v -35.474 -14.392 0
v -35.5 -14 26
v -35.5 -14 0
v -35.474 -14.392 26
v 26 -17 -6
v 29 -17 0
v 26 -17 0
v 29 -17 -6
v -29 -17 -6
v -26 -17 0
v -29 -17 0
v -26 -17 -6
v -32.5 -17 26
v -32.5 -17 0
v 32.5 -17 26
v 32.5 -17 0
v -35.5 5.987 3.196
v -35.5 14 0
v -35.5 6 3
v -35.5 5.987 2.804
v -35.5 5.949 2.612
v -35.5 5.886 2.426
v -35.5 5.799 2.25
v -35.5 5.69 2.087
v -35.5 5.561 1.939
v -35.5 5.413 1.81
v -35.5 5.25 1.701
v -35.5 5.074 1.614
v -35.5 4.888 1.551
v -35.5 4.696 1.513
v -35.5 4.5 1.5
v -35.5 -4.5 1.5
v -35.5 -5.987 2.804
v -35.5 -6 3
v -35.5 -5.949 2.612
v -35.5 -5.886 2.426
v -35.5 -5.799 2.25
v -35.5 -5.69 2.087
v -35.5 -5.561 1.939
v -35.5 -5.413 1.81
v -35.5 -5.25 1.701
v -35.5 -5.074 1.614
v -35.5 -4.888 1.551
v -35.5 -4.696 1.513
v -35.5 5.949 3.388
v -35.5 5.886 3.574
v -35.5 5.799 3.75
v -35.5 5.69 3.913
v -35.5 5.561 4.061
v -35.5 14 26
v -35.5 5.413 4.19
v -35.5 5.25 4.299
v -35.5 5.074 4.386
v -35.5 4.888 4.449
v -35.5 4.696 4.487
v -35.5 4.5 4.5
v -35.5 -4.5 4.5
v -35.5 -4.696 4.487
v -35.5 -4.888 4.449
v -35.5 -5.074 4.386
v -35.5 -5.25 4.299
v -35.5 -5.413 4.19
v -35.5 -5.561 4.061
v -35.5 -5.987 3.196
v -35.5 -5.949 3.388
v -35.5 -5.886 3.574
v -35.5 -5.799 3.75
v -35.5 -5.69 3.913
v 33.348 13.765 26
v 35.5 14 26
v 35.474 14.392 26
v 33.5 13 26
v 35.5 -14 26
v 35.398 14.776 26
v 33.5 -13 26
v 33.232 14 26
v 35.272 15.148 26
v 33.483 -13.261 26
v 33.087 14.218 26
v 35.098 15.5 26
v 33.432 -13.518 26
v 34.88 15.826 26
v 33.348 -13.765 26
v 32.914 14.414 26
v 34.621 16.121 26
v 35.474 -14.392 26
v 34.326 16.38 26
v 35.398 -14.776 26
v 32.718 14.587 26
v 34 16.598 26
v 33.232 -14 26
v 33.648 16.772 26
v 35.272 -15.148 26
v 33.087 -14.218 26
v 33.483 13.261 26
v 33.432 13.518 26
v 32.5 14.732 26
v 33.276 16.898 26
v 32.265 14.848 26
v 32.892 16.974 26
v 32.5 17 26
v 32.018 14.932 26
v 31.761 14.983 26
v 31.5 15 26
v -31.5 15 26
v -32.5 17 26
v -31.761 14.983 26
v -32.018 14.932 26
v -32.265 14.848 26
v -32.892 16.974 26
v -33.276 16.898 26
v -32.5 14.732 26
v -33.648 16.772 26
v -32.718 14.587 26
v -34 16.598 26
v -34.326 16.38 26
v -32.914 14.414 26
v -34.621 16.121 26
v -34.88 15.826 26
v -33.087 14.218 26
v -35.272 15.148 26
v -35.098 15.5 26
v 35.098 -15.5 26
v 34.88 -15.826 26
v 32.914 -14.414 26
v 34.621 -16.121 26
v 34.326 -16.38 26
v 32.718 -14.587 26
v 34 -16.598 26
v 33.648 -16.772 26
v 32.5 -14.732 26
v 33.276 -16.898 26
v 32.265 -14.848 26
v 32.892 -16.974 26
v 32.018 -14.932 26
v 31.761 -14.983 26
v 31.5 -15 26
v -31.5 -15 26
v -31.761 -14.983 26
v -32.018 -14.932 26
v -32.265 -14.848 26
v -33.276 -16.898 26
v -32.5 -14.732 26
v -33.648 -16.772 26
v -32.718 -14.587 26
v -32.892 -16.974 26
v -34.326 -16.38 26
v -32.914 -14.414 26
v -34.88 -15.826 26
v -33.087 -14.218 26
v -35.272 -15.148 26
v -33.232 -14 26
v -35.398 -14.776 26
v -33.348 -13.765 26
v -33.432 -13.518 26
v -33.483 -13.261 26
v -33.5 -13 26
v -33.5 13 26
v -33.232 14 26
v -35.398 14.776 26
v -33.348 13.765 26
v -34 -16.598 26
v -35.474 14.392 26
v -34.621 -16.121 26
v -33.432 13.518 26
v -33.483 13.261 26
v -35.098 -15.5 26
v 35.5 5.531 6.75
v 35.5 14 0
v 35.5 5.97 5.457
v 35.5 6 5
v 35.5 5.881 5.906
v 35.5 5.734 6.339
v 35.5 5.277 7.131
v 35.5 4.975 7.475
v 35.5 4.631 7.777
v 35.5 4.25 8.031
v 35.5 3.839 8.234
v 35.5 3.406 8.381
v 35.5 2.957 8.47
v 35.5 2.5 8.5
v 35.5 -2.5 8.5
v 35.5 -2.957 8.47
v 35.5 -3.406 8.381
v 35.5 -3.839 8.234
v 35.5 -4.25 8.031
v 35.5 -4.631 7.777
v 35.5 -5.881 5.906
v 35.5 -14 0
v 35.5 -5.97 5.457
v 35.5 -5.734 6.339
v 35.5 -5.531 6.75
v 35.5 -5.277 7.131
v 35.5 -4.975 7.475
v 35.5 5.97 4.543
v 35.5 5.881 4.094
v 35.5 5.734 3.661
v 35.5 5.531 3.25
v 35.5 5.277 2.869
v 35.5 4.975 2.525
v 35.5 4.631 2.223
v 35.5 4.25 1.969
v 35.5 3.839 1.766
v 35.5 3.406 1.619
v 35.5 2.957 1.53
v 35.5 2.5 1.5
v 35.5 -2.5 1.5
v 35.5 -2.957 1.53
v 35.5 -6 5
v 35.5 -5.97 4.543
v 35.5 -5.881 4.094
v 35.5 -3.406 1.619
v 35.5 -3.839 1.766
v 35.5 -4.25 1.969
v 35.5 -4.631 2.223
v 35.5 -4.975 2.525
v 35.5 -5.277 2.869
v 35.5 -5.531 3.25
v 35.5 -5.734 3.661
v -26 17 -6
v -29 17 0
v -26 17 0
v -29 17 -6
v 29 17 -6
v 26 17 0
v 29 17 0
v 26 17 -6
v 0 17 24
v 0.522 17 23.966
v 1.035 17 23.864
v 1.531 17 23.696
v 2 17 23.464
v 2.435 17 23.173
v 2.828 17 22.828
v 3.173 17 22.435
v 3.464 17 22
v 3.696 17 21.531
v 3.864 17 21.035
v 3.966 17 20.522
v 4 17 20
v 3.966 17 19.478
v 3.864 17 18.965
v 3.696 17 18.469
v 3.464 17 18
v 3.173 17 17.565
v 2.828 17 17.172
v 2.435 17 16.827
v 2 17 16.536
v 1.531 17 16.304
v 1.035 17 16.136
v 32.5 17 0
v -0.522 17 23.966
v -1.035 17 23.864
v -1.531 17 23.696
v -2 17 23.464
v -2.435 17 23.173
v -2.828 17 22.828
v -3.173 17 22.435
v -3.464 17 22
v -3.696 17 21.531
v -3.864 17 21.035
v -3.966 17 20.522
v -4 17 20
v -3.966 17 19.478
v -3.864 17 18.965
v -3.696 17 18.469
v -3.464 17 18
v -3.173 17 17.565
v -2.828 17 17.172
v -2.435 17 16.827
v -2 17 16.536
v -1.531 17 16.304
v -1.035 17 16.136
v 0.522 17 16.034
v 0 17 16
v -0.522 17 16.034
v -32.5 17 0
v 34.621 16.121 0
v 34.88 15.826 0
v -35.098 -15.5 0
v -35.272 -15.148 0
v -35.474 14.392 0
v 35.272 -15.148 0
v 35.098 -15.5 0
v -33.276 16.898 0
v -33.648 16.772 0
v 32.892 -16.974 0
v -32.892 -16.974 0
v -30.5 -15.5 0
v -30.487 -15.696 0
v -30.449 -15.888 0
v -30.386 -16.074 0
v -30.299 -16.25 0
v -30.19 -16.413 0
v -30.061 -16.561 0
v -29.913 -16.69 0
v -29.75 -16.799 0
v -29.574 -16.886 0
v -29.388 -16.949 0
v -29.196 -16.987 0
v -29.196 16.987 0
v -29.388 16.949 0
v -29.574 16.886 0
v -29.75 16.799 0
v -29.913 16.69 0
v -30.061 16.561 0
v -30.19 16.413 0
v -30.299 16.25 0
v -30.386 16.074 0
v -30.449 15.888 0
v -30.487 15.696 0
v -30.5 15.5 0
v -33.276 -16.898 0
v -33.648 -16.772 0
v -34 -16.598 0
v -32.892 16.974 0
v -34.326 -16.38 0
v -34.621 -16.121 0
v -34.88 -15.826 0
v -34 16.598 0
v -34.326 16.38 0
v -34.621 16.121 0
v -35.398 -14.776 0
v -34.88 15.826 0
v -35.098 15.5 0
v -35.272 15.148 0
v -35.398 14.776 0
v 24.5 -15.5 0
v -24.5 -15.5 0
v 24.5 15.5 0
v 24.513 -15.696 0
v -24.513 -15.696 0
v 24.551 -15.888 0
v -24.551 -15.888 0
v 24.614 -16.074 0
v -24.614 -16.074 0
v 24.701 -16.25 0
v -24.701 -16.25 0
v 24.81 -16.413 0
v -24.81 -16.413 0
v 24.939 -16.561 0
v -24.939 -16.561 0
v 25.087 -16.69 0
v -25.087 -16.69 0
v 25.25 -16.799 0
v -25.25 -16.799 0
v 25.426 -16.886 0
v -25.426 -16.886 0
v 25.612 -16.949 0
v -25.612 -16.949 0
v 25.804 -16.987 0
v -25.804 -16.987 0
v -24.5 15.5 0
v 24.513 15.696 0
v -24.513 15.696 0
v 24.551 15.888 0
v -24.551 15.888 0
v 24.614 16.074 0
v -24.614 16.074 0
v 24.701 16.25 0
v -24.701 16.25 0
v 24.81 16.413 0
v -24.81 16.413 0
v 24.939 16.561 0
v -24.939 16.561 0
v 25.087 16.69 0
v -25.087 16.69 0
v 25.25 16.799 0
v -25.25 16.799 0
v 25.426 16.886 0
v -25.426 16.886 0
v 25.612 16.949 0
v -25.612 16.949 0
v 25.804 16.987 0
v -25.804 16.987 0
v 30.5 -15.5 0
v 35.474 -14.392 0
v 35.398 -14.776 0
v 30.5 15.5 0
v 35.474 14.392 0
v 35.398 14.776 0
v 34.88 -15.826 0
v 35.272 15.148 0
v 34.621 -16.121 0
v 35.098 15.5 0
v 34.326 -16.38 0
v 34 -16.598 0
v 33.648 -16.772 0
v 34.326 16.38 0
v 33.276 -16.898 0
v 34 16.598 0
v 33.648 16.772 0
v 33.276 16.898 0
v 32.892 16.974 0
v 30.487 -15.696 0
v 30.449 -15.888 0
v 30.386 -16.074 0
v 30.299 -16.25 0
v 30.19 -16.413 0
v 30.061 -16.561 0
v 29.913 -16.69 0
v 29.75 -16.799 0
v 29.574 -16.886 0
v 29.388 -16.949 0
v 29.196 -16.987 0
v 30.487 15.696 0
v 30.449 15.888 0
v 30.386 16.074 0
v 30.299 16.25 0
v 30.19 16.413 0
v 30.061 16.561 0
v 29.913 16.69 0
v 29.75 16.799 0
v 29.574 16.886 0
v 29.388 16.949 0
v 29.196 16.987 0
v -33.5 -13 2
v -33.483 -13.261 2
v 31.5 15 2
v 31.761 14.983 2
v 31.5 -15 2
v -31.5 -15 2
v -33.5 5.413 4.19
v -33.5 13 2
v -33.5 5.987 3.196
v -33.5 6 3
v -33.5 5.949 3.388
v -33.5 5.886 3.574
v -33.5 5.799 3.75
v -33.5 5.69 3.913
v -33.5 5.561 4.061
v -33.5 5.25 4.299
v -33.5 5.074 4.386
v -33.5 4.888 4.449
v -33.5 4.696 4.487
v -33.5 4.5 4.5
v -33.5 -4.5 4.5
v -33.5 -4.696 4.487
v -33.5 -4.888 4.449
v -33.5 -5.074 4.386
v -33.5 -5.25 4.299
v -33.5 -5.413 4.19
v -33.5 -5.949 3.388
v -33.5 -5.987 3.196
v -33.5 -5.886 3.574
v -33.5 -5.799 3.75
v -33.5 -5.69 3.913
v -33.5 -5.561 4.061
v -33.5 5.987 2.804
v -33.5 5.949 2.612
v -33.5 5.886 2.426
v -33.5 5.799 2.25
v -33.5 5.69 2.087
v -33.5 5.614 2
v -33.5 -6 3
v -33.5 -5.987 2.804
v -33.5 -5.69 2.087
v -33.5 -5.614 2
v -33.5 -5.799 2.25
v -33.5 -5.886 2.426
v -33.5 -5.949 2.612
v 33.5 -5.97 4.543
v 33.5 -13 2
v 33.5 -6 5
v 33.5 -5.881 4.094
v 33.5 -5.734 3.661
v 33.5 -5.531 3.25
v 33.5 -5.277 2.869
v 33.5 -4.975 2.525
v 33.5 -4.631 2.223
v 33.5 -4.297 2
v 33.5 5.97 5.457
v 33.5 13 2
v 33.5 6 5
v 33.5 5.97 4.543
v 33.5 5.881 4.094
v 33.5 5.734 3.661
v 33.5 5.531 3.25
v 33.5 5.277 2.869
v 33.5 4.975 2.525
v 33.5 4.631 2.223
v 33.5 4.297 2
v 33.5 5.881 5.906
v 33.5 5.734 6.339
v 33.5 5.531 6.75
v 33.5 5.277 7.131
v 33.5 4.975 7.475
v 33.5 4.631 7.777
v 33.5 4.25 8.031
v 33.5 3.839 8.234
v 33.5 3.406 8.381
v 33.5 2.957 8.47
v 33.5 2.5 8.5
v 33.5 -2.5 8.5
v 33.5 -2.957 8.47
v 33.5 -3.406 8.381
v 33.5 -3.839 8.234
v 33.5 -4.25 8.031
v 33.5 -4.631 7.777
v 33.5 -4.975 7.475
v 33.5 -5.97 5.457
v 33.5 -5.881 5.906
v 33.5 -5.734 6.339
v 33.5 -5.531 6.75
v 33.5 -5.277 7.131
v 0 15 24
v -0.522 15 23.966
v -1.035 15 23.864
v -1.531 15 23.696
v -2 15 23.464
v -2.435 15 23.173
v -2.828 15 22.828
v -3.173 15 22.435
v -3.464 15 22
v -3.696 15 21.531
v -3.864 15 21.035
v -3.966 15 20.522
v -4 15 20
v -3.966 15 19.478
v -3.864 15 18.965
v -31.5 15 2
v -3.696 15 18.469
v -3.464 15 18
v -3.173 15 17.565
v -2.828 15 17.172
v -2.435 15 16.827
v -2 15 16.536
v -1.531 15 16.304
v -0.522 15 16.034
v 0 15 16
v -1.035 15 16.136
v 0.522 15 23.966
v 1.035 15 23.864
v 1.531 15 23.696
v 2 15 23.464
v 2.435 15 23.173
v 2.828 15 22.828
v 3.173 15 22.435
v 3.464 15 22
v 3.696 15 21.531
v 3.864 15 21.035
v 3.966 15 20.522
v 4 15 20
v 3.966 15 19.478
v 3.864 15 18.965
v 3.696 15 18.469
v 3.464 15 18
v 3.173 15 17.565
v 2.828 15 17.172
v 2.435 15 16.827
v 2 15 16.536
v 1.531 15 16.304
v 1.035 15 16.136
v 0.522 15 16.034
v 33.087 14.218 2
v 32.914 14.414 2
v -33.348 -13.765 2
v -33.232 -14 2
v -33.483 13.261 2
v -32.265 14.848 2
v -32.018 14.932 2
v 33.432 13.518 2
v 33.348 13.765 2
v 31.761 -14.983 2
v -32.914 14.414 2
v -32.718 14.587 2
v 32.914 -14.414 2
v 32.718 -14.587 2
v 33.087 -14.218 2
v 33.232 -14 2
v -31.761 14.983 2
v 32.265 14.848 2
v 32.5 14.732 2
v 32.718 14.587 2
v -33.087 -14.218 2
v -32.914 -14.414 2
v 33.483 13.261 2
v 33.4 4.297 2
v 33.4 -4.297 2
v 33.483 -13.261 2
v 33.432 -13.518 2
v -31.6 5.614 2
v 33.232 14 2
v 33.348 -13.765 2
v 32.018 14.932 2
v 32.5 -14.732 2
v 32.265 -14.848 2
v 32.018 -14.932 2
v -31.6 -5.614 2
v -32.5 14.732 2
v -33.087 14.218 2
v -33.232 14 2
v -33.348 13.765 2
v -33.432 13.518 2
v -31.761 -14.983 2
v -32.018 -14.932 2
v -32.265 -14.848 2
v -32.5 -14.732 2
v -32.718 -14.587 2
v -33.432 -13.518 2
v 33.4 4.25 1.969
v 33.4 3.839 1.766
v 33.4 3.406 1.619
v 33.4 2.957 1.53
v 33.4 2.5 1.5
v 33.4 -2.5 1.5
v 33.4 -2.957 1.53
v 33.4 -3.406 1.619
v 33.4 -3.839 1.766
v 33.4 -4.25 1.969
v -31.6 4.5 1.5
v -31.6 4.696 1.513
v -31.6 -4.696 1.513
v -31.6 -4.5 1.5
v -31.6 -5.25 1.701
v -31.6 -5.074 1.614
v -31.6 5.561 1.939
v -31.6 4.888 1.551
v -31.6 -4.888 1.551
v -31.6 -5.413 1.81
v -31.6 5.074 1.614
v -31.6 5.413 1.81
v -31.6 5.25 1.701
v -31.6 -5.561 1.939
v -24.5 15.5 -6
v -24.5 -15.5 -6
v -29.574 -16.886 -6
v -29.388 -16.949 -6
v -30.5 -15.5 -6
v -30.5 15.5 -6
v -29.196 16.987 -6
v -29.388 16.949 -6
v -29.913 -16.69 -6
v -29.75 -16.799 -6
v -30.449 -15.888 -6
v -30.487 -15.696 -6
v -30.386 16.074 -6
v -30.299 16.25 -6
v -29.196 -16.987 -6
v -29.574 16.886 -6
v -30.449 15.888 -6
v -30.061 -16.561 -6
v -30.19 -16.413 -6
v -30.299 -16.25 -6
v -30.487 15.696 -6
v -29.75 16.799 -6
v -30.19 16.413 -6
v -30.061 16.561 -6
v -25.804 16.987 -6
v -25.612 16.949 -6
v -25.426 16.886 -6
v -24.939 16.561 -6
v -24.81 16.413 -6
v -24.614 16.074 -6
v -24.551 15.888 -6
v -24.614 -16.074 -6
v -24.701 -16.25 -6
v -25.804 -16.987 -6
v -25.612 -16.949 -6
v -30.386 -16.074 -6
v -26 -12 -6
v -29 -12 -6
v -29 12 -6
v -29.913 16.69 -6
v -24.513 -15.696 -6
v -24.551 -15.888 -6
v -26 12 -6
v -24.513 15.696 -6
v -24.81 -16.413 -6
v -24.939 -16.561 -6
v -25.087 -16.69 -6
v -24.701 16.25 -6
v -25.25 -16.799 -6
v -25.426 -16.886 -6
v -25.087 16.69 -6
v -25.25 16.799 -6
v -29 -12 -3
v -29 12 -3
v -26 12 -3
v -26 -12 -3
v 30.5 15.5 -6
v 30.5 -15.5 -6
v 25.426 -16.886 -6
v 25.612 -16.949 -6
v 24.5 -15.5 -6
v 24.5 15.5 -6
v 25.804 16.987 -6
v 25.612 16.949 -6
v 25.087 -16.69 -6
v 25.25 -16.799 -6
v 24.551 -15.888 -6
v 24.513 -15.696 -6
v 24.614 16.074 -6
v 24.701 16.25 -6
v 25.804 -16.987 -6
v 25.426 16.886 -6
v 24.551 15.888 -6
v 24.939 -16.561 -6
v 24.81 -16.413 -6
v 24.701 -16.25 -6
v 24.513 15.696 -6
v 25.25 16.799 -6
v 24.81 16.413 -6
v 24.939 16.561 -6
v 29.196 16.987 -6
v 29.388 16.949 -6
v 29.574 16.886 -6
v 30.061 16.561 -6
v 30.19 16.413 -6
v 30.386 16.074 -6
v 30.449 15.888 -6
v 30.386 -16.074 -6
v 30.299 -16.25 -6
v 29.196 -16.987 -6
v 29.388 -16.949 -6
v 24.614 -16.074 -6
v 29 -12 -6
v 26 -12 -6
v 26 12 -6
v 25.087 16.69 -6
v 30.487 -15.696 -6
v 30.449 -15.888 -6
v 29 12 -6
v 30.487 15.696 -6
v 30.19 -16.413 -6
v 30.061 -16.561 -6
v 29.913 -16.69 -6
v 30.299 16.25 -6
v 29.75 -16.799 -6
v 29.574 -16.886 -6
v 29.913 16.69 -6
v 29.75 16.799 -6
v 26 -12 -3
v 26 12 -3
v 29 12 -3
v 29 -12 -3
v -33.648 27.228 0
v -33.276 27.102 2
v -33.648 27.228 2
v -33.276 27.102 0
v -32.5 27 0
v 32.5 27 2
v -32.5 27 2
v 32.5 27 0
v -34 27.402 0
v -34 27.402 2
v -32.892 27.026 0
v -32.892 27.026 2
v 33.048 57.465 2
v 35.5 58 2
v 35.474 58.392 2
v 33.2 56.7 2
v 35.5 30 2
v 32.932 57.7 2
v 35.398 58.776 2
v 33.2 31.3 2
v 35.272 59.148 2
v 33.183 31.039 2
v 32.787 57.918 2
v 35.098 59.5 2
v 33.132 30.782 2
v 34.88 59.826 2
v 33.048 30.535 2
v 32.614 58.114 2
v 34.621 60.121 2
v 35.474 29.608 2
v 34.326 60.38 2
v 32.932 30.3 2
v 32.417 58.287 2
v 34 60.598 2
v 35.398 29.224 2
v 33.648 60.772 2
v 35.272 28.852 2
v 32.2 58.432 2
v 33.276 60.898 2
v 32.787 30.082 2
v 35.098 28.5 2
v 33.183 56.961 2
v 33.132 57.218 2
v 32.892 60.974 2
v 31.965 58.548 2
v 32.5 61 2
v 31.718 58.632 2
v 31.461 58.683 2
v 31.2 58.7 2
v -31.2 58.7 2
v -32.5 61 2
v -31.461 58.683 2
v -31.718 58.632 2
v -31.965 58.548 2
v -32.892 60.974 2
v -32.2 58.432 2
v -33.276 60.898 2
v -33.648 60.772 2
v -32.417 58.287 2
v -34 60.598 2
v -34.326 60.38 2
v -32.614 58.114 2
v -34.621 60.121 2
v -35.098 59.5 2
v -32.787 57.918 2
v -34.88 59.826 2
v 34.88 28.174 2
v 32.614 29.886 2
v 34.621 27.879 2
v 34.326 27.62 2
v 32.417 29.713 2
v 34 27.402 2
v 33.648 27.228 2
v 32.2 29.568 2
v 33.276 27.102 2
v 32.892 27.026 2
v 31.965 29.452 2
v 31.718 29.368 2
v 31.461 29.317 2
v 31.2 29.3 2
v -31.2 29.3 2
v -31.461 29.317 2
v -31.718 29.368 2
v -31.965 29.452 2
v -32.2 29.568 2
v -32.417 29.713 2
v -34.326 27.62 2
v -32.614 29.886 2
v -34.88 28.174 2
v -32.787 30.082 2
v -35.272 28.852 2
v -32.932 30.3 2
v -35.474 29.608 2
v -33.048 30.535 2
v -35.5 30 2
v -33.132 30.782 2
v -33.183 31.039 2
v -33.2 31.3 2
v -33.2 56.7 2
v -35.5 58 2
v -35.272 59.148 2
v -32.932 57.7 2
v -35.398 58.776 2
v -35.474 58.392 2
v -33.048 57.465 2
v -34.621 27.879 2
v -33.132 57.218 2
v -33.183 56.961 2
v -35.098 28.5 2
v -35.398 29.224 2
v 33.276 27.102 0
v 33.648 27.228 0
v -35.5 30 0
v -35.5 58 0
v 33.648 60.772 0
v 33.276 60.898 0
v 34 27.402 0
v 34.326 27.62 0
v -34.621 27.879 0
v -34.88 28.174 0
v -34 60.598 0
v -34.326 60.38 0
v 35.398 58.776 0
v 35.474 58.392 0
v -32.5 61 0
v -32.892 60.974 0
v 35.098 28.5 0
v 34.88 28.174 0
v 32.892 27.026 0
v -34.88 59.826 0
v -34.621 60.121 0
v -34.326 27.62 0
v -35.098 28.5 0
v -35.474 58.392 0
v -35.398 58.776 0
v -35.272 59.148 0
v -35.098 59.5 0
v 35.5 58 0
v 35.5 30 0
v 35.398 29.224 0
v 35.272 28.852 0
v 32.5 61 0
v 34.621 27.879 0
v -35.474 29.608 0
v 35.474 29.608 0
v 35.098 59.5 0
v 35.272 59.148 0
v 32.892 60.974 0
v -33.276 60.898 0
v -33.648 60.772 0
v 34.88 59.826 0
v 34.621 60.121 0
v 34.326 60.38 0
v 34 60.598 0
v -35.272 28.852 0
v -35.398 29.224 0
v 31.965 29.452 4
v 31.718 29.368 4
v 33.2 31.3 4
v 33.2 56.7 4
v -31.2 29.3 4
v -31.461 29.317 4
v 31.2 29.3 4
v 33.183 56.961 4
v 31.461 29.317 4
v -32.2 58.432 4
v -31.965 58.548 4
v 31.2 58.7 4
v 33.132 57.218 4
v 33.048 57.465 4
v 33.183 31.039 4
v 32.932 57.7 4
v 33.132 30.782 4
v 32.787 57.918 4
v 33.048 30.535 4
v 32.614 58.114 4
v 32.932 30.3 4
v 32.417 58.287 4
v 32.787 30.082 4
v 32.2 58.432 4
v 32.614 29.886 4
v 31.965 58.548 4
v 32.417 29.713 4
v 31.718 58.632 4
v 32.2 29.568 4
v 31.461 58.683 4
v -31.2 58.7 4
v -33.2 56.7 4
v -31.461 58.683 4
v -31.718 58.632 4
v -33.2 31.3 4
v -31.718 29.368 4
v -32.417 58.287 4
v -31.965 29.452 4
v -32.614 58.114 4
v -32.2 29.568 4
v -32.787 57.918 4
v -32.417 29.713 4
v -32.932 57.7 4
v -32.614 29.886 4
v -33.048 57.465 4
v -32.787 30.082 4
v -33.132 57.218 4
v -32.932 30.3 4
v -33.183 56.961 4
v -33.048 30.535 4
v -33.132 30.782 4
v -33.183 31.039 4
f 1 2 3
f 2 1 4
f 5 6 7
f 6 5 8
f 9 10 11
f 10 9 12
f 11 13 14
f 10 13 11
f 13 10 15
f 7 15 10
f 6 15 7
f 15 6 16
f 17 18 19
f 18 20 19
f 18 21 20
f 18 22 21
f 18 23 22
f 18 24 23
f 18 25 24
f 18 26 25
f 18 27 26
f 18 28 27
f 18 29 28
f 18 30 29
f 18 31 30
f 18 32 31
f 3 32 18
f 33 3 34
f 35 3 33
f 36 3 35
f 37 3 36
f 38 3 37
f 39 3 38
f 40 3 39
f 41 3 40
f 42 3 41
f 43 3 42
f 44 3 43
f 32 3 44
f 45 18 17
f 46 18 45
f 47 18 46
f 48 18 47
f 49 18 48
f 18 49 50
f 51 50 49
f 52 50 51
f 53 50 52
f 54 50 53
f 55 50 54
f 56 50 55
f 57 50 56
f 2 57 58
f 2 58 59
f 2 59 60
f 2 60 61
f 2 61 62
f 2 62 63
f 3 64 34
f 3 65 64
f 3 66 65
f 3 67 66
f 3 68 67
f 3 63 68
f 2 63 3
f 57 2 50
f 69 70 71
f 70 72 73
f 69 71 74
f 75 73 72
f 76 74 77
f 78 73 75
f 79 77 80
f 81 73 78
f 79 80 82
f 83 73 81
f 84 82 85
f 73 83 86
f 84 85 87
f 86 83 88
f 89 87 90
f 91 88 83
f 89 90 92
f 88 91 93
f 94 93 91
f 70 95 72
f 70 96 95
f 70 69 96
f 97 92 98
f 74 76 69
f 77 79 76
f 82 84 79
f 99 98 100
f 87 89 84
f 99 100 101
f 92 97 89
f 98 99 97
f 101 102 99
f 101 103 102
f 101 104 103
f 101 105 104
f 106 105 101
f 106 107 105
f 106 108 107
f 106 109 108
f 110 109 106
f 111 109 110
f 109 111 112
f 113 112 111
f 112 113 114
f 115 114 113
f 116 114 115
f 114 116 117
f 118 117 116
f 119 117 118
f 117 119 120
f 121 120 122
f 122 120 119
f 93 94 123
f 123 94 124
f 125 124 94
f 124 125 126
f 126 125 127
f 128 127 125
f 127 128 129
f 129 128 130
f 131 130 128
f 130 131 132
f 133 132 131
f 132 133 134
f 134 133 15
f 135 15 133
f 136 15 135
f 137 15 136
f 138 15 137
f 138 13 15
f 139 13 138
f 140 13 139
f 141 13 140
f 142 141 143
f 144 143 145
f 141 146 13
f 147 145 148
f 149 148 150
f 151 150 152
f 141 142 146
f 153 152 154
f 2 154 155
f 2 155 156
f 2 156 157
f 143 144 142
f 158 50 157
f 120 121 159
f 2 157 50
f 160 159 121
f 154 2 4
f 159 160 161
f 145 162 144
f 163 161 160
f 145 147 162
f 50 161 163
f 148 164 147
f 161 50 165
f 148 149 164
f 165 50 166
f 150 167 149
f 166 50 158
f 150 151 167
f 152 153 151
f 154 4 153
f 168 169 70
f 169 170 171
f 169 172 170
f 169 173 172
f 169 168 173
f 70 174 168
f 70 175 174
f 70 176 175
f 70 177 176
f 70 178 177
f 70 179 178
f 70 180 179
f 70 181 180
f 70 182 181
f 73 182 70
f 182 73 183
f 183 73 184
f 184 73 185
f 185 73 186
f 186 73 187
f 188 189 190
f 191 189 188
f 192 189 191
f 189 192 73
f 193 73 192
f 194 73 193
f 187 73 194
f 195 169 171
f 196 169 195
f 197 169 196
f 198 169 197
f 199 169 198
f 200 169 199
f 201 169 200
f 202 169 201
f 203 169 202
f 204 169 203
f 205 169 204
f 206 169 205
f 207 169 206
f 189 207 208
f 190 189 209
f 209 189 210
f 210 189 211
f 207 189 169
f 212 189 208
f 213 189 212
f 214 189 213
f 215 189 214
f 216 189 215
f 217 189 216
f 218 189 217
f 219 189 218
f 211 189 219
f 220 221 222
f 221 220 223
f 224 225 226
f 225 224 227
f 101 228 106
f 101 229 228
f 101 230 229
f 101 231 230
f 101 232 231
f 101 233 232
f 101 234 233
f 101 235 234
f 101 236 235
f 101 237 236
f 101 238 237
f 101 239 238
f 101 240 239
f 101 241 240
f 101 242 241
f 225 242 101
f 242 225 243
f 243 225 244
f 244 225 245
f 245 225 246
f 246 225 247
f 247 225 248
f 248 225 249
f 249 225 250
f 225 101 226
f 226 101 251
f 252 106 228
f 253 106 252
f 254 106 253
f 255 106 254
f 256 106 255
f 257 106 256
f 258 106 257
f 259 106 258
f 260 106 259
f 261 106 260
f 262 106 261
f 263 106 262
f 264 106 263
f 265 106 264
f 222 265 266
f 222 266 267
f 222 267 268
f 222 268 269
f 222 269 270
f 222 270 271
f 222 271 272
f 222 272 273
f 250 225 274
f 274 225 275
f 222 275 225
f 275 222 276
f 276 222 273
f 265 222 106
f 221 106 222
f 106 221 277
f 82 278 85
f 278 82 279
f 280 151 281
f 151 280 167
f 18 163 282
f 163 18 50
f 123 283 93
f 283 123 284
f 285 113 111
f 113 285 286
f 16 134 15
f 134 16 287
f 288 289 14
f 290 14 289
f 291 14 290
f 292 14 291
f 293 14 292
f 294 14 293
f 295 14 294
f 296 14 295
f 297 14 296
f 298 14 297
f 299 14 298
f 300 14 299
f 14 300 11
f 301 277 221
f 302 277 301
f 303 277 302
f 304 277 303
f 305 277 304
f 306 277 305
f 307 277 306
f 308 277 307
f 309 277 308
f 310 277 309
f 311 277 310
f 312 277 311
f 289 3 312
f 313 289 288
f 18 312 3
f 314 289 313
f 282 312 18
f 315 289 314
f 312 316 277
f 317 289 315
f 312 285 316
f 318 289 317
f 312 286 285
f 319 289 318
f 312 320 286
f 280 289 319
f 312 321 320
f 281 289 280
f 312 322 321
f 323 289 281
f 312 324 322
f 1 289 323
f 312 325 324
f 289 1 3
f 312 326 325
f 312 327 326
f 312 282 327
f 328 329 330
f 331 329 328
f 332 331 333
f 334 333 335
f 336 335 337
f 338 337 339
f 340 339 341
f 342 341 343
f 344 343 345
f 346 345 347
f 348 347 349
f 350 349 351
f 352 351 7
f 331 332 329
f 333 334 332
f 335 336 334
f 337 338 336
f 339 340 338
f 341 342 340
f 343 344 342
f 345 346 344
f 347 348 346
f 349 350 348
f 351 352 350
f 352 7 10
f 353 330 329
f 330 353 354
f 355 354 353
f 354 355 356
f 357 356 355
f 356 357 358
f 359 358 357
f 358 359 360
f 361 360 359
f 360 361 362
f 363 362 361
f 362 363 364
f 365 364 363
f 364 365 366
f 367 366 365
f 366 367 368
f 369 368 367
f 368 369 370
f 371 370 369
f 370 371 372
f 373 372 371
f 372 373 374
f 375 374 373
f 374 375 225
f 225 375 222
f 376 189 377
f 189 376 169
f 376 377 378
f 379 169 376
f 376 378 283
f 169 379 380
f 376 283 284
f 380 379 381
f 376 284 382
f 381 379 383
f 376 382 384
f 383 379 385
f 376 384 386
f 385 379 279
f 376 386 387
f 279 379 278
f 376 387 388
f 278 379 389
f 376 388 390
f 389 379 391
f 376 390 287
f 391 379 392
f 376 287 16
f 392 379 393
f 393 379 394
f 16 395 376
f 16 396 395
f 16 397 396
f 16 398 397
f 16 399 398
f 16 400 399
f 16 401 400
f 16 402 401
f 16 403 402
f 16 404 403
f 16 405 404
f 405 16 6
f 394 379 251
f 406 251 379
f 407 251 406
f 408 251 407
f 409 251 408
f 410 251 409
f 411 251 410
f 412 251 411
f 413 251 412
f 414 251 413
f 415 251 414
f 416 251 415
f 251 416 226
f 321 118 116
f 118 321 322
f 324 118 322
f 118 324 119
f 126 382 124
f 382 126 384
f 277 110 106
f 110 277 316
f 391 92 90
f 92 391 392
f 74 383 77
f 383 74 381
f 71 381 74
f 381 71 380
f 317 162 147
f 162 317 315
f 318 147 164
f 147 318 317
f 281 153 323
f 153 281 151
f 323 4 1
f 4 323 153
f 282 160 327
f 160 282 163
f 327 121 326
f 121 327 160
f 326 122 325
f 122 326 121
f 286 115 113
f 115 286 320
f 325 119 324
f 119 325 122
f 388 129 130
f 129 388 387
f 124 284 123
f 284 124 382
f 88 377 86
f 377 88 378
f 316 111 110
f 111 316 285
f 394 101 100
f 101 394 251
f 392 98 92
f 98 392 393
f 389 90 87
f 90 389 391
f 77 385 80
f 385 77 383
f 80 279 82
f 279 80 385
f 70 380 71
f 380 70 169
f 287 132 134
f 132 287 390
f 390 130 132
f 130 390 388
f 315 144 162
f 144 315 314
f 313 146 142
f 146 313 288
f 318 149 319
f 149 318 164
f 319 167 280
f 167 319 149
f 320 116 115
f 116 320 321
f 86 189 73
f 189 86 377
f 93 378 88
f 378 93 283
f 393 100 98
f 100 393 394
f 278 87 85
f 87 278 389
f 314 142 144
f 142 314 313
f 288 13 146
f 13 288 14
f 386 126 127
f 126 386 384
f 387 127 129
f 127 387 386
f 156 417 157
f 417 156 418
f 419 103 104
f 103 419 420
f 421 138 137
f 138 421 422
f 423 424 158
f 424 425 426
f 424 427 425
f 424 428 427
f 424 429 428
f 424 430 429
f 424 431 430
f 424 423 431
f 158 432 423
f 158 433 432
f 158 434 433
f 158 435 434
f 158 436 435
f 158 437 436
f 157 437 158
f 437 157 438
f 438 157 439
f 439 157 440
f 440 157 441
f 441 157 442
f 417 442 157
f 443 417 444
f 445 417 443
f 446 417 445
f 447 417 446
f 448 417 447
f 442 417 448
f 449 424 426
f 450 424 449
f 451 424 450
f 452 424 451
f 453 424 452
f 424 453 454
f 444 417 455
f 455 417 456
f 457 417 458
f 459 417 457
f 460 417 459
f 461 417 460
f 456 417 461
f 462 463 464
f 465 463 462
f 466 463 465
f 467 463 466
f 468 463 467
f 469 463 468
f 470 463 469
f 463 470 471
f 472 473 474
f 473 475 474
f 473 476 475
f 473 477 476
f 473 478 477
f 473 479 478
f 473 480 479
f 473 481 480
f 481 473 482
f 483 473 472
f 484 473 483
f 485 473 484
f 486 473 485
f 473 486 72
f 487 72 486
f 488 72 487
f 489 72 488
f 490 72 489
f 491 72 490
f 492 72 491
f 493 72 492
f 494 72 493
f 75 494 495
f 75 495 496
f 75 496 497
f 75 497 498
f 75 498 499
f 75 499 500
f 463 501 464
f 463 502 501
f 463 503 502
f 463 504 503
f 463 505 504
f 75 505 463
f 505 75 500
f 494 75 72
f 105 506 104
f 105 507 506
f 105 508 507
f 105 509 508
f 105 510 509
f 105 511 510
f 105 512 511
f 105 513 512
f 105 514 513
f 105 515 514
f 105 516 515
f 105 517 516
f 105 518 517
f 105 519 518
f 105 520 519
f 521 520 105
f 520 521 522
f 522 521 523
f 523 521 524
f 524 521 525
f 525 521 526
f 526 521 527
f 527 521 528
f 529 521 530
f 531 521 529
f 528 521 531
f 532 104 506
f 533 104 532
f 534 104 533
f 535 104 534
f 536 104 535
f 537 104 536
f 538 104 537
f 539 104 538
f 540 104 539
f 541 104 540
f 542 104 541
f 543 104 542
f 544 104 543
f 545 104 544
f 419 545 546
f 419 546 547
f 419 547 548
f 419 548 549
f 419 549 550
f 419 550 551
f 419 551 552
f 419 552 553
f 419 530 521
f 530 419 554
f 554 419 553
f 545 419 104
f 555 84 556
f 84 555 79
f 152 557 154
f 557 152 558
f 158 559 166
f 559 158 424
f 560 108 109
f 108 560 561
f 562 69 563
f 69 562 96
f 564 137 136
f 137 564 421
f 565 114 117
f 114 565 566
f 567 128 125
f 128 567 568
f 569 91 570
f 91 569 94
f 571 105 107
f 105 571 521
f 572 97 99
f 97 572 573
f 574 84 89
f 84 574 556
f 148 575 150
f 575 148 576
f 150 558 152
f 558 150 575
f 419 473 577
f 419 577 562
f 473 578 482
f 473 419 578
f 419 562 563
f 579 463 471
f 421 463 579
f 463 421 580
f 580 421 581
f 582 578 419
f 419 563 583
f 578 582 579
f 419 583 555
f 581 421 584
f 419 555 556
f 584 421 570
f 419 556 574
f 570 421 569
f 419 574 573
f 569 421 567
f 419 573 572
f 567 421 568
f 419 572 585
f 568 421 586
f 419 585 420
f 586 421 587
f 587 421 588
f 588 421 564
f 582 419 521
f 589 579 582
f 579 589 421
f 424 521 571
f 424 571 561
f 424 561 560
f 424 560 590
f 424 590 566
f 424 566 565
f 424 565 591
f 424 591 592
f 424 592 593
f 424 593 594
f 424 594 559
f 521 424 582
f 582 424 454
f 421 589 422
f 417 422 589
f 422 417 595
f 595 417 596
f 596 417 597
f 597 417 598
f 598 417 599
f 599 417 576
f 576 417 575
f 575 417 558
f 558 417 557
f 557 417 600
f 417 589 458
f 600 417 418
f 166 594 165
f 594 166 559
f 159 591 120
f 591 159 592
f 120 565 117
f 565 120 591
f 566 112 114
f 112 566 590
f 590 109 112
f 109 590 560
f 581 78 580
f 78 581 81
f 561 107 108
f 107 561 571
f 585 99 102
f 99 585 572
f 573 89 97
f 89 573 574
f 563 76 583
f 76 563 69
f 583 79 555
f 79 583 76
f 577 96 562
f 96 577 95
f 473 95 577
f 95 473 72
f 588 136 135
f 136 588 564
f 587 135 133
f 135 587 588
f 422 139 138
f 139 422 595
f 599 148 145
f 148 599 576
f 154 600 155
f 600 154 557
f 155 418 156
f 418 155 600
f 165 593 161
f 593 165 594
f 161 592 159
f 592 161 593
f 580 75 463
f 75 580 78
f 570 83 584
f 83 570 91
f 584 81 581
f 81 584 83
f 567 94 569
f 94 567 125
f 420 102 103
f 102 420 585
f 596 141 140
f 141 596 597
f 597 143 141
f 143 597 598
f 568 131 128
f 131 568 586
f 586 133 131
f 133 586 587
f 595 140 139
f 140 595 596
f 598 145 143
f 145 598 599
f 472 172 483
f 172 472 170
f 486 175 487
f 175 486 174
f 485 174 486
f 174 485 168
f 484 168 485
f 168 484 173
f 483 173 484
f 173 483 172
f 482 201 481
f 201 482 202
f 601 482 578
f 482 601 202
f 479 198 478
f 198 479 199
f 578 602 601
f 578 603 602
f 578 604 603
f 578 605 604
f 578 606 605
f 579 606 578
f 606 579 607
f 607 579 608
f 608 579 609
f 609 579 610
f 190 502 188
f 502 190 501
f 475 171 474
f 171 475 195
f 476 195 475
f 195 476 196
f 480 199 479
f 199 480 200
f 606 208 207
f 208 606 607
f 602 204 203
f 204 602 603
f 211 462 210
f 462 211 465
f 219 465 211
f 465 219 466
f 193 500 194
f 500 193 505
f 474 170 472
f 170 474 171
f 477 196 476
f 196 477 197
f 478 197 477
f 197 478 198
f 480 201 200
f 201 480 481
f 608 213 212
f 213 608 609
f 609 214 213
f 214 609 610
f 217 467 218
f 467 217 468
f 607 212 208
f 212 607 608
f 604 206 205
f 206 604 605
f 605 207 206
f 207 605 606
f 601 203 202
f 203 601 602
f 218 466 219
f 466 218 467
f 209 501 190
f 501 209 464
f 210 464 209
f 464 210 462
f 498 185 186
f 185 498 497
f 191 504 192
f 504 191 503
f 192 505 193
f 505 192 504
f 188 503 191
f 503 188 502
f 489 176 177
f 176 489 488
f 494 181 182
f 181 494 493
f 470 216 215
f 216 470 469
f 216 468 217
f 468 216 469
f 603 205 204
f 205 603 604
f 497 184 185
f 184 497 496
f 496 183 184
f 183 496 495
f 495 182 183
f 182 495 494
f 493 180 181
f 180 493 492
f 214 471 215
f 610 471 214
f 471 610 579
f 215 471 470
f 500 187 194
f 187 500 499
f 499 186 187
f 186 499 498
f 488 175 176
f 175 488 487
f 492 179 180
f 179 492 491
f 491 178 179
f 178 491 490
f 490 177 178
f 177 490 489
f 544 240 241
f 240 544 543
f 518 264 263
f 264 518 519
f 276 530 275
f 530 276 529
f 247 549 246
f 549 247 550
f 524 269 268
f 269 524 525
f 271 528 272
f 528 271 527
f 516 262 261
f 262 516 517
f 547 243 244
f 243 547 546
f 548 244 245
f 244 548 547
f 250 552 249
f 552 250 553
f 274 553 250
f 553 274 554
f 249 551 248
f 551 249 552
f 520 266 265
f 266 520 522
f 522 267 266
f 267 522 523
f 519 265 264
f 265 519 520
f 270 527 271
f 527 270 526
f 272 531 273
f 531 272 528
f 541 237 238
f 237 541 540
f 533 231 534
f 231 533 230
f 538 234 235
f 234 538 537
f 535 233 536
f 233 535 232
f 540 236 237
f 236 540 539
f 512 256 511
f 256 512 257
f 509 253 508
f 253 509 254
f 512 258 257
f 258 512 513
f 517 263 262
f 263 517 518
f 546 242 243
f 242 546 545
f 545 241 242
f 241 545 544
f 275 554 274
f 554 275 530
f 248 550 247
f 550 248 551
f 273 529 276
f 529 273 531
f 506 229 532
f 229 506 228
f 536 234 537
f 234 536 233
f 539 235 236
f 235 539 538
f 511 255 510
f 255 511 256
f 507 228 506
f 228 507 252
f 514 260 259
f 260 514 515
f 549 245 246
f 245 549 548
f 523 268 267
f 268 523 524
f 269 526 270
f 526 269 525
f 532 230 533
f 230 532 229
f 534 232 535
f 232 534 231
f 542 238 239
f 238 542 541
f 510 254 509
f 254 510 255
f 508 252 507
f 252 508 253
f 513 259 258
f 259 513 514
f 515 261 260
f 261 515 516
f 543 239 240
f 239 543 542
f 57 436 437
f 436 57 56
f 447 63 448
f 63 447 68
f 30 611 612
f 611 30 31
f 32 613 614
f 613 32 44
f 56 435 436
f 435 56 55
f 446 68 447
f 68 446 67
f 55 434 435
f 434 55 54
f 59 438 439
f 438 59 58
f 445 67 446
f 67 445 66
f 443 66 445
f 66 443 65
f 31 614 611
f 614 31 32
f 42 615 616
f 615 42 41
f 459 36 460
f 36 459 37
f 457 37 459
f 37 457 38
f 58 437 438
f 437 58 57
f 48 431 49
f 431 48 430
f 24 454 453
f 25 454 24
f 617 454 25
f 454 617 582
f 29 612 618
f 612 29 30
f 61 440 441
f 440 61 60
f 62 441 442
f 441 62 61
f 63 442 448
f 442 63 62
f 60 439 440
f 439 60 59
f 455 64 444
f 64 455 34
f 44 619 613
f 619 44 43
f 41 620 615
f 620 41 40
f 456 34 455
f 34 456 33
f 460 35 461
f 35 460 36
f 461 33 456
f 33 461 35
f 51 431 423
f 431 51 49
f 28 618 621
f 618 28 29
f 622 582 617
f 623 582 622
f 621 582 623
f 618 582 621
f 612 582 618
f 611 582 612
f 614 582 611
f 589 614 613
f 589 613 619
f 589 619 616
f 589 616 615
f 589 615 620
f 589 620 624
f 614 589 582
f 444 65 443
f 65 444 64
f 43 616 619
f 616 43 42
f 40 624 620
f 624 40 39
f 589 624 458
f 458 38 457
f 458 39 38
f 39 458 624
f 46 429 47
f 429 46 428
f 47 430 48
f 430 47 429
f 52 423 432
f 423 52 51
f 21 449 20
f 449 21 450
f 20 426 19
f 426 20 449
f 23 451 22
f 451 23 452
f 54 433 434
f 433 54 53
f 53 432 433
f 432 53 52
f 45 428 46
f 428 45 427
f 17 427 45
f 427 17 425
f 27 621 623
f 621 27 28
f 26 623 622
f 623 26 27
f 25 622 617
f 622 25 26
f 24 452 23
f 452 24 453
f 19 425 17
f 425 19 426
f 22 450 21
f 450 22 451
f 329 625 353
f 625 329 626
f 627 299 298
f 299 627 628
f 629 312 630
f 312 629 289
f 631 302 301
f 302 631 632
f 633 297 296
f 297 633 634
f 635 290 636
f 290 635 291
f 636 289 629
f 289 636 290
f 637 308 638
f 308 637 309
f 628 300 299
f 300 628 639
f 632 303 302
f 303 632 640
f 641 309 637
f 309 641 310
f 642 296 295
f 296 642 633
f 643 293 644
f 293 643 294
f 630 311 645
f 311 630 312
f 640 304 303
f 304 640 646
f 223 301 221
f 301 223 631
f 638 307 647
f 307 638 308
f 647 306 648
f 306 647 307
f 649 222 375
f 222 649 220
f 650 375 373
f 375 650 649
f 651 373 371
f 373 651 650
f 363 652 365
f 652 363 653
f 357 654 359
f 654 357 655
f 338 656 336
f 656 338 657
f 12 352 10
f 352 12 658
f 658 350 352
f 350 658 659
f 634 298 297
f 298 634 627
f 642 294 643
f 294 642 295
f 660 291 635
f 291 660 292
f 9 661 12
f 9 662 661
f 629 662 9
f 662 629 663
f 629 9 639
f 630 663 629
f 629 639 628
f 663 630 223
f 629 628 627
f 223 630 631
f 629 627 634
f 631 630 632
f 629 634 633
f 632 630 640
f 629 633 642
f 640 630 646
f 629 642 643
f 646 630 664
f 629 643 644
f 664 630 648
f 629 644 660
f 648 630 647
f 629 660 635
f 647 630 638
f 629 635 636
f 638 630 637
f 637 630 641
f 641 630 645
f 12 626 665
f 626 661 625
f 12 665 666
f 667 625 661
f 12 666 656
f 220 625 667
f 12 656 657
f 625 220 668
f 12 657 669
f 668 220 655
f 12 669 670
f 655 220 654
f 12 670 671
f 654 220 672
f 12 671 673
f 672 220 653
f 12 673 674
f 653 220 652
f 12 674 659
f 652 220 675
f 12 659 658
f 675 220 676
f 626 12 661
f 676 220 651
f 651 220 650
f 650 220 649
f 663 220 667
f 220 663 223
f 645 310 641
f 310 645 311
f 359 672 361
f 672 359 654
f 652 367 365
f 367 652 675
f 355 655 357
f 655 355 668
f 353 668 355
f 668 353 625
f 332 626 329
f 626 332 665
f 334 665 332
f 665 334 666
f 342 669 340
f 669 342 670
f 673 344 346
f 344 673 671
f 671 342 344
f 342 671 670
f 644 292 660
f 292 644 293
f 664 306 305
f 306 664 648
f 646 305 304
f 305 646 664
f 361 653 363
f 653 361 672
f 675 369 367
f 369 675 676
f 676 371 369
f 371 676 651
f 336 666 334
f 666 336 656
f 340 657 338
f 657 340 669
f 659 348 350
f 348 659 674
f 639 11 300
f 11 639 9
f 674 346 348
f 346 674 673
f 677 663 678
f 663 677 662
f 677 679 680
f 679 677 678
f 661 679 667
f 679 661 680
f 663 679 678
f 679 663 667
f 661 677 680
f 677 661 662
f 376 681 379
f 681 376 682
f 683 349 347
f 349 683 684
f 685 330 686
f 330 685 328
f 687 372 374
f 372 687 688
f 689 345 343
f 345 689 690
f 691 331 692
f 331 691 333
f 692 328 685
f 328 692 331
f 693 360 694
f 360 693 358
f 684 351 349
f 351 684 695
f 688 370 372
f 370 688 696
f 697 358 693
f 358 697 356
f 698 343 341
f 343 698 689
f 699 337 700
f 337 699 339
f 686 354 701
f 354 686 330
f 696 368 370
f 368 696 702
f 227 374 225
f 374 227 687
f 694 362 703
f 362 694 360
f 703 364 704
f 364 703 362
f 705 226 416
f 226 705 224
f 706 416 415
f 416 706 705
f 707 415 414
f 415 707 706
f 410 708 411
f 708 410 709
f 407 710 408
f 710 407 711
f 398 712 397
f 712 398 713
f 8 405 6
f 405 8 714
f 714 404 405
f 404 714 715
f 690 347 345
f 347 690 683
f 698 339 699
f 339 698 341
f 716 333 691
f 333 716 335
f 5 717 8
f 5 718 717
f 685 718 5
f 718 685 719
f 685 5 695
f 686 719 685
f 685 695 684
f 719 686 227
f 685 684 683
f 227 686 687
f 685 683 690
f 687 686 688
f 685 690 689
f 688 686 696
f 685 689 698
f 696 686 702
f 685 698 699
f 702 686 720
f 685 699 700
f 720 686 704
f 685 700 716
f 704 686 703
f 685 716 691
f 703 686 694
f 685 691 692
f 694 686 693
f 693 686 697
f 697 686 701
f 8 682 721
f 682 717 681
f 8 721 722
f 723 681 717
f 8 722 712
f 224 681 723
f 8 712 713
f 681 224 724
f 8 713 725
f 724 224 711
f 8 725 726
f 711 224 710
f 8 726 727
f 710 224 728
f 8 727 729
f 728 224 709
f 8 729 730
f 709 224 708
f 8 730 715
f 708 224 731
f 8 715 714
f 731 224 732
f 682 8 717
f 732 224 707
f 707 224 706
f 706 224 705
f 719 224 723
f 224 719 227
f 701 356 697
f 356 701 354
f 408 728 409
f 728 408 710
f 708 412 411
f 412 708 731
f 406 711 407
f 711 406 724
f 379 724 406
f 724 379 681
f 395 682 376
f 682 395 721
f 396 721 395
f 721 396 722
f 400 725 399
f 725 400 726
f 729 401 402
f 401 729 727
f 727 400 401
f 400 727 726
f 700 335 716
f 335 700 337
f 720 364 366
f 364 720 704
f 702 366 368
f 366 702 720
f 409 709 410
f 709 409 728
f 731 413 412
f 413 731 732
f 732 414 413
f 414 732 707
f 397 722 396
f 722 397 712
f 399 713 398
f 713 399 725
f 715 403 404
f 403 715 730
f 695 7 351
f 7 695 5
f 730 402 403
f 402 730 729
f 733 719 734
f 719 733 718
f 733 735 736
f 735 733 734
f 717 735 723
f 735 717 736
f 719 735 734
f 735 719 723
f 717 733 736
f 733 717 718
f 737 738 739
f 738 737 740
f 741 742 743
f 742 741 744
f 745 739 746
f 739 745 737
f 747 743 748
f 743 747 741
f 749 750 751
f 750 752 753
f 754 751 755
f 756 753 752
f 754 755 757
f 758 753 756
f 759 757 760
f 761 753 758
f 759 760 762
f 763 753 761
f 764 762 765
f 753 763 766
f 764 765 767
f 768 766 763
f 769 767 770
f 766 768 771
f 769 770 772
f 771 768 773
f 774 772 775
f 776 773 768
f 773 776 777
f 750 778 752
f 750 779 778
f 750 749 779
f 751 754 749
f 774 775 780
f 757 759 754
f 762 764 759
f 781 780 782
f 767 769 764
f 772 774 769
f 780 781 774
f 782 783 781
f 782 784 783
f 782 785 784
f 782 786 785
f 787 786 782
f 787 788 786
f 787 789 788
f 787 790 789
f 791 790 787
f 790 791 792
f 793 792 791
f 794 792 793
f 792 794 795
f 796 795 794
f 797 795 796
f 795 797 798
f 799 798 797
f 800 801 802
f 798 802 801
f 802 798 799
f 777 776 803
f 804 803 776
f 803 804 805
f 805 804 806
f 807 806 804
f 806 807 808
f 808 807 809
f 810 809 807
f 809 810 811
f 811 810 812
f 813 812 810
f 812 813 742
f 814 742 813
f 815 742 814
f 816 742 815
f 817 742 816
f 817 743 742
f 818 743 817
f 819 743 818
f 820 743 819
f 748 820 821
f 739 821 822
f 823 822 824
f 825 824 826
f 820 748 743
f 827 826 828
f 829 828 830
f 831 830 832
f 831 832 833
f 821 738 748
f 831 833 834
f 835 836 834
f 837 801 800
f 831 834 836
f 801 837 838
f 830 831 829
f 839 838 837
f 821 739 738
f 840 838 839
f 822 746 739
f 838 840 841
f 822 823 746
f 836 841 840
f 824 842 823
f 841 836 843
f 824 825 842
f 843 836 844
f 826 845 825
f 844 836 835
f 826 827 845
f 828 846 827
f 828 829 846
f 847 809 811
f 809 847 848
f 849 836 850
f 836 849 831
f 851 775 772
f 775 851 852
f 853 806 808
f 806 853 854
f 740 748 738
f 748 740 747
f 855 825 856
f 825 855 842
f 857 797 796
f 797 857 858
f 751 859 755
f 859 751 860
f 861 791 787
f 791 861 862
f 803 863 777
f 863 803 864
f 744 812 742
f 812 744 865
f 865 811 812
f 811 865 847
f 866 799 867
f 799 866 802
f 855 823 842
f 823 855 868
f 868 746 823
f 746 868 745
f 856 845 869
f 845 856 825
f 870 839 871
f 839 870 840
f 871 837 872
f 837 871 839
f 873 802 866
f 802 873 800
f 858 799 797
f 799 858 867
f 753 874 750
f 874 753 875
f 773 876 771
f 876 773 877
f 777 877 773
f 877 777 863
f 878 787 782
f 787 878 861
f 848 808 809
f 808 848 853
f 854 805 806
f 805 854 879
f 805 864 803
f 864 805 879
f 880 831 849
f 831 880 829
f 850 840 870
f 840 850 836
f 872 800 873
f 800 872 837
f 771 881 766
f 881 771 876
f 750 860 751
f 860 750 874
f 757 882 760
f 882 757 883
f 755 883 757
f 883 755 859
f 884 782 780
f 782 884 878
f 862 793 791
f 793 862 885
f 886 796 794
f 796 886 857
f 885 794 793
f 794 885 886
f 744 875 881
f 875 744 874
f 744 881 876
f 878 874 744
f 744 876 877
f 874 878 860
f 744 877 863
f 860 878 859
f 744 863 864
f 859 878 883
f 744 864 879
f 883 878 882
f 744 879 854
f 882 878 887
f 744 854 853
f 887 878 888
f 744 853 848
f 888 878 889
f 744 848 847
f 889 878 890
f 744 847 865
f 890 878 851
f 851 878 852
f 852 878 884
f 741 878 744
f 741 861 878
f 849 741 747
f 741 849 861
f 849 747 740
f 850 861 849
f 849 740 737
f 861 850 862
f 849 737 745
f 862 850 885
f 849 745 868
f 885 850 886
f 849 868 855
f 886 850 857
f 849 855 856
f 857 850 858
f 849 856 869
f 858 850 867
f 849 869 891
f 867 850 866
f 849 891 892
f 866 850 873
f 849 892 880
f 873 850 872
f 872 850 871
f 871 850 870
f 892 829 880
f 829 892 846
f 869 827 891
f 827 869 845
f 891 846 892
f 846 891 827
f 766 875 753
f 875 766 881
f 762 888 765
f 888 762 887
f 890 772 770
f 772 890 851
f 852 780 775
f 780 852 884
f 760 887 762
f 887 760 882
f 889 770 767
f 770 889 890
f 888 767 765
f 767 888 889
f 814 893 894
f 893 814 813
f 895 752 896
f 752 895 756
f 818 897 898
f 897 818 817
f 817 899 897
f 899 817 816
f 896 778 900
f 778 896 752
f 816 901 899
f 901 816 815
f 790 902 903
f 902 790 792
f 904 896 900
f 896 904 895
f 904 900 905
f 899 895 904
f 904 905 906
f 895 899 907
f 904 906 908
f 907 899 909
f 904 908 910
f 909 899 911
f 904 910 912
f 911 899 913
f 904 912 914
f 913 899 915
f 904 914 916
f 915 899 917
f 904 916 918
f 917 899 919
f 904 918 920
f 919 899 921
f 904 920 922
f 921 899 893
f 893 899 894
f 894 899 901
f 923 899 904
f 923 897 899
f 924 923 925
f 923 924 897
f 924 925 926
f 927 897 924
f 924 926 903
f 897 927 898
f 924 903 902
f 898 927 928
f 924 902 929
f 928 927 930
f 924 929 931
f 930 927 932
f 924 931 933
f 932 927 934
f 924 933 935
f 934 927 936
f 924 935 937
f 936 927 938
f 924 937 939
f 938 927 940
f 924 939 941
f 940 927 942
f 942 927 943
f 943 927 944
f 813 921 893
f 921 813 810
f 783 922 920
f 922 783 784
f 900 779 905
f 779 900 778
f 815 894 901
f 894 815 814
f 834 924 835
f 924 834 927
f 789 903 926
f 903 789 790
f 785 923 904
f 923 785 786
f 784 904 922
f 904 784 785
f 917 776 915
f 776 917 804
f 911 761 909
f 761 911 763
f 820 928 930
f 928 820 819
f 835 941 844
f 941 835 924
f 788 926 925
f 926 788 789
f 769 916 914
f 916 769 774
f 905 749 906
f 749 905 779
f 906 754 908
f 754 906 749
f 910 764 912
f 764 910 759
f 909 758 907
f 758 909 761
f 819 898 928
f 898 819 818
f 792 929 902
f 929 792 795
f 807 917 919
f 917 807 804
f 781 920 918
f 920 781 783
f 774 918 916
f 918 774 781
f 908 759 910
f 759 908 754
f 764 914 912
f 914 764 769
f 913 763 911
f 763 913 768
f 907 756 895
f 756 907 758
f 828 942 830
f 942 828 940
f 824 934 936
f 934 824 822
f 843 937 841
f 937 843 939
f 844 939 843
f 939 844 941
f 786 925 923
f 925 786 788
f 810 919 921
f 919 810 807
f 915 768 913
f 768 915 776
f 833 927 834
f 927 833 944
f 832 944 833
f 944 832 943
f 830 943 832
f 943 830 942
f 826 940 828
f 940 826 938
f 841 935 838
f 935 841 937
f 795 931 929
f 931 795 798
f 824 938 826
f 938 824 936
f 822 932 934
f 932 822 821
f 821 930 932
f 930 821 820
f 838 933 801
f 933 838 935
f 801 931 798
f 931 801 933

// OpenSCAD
// ankle_pod.scad — parametric enclosure for the Path 2 tracking pod
// Holds ESP32-S3 DevKitC + LiPo + microSD module; clips to ankle/laces.
// Usage: open in OpenSCAD -> F6 -> Export as STL. Print in PLA or PETG.
// ⚠️ MEASURE your actual boards + battery and edit the parameters below.
// All units mm.

/* ---------- parameters (edit to your parts) ---------- */
wall     = 2.0;
inner_l  = 67;    // interior length  (ESP32-S3 board + a little slack)
inner_w  = 30;    // interior width
inner_h  = 24;    // interior height  (board stacked over the LiPo)
rad      = 3;     // outer corner radius
usb_w    = 12;    // USB-C opening width  (for charging + flashing)
usb_h    = 7;     // USB-C opening height
btn_d    = 8;     // button hole diameter
ribbon_w = 12;    // sensor-ribbon slot width
ribbon_h = 3;     // sensor-ribbon slot height
strap_w  = 24;    // ankle strap width it must pass
$fn      = 48;

out_l = inner_l + 2*wall;
out_w = inner_w + 2*wall;
out_h = inner_h + wall;          // open-top shell; lid is separate

/* ---------- helpers ---------- */
module rbox(l, w, h, r){         // rounded box, centered in X/Y, base at z=0
  hull() for (x = [-1,1], y = [-1,1])
    translate([x*(l/2 - r), y*(w/2 - r), 0]) cylinder(r = r, h = h);
}

/* ---------- the pod (shell) ---------- */
module pod(){
  difference(){
    rbox(out_l, out_w, out_h, rad);
    // interior cavity
    translate([0, 0, wall]) rbox(inner_l, inner_w, inner_h + 1, max(rad - 1, 1));
    // USB-C cutout on the +X end
    translate([out_l/2 - wall - 0.1, 0, wall + 3]) rotate([0, 90, 0])
      hull() for (y = [-1,1]) translate([0, y*(usb_w/2 - usb_h/2), 0]) cylinder(d = usb_h, h = wall + 2);
    // button hole on the +Y side (near the top)
    translate([0, out_w/2 - wall - 0.1, wall + inner_h - 6]) rotate([-90, 0, 0]) cylinder(d = btn_d, h = wall + 2);
    // sensor-ribbon slot on the -X end, near the floor
    translate([-out_l/2 - 0.1, 0, wall + 1]) rotate([0, 90, 0])
      hull() for (y = [-1,1]) translate([0, y*(ribbon_w/2 - ribbon_h/2), 0]) cylinder(d = ribbon_h, h = wall + 2);
  }
  // two strap slots under the base to thread an ankle strap
  for (sx = [-1, 1]) translate([sx*(out_l/2 - 8), 0, 0]) difference(){
    translate([0, 0, -6]) rbox(6, out_w, 6, 1.5);
    translate([0, 0, -7]) cube([3, strap_w, 8], center = true);
  }
}

/* ---------- press-fit lid (printed beside the pod) ---------- */
module lid(){
  translate([0, out_w + 10, 0]){
    rbox(out_l, out_w, wall, rad);
    translate([0, 0, wall]) rbox(inner_l - 0.6, inner_w - 0.6, 2, max(rad - 1, 1));  // lip
  }
}

pod();
lid();
